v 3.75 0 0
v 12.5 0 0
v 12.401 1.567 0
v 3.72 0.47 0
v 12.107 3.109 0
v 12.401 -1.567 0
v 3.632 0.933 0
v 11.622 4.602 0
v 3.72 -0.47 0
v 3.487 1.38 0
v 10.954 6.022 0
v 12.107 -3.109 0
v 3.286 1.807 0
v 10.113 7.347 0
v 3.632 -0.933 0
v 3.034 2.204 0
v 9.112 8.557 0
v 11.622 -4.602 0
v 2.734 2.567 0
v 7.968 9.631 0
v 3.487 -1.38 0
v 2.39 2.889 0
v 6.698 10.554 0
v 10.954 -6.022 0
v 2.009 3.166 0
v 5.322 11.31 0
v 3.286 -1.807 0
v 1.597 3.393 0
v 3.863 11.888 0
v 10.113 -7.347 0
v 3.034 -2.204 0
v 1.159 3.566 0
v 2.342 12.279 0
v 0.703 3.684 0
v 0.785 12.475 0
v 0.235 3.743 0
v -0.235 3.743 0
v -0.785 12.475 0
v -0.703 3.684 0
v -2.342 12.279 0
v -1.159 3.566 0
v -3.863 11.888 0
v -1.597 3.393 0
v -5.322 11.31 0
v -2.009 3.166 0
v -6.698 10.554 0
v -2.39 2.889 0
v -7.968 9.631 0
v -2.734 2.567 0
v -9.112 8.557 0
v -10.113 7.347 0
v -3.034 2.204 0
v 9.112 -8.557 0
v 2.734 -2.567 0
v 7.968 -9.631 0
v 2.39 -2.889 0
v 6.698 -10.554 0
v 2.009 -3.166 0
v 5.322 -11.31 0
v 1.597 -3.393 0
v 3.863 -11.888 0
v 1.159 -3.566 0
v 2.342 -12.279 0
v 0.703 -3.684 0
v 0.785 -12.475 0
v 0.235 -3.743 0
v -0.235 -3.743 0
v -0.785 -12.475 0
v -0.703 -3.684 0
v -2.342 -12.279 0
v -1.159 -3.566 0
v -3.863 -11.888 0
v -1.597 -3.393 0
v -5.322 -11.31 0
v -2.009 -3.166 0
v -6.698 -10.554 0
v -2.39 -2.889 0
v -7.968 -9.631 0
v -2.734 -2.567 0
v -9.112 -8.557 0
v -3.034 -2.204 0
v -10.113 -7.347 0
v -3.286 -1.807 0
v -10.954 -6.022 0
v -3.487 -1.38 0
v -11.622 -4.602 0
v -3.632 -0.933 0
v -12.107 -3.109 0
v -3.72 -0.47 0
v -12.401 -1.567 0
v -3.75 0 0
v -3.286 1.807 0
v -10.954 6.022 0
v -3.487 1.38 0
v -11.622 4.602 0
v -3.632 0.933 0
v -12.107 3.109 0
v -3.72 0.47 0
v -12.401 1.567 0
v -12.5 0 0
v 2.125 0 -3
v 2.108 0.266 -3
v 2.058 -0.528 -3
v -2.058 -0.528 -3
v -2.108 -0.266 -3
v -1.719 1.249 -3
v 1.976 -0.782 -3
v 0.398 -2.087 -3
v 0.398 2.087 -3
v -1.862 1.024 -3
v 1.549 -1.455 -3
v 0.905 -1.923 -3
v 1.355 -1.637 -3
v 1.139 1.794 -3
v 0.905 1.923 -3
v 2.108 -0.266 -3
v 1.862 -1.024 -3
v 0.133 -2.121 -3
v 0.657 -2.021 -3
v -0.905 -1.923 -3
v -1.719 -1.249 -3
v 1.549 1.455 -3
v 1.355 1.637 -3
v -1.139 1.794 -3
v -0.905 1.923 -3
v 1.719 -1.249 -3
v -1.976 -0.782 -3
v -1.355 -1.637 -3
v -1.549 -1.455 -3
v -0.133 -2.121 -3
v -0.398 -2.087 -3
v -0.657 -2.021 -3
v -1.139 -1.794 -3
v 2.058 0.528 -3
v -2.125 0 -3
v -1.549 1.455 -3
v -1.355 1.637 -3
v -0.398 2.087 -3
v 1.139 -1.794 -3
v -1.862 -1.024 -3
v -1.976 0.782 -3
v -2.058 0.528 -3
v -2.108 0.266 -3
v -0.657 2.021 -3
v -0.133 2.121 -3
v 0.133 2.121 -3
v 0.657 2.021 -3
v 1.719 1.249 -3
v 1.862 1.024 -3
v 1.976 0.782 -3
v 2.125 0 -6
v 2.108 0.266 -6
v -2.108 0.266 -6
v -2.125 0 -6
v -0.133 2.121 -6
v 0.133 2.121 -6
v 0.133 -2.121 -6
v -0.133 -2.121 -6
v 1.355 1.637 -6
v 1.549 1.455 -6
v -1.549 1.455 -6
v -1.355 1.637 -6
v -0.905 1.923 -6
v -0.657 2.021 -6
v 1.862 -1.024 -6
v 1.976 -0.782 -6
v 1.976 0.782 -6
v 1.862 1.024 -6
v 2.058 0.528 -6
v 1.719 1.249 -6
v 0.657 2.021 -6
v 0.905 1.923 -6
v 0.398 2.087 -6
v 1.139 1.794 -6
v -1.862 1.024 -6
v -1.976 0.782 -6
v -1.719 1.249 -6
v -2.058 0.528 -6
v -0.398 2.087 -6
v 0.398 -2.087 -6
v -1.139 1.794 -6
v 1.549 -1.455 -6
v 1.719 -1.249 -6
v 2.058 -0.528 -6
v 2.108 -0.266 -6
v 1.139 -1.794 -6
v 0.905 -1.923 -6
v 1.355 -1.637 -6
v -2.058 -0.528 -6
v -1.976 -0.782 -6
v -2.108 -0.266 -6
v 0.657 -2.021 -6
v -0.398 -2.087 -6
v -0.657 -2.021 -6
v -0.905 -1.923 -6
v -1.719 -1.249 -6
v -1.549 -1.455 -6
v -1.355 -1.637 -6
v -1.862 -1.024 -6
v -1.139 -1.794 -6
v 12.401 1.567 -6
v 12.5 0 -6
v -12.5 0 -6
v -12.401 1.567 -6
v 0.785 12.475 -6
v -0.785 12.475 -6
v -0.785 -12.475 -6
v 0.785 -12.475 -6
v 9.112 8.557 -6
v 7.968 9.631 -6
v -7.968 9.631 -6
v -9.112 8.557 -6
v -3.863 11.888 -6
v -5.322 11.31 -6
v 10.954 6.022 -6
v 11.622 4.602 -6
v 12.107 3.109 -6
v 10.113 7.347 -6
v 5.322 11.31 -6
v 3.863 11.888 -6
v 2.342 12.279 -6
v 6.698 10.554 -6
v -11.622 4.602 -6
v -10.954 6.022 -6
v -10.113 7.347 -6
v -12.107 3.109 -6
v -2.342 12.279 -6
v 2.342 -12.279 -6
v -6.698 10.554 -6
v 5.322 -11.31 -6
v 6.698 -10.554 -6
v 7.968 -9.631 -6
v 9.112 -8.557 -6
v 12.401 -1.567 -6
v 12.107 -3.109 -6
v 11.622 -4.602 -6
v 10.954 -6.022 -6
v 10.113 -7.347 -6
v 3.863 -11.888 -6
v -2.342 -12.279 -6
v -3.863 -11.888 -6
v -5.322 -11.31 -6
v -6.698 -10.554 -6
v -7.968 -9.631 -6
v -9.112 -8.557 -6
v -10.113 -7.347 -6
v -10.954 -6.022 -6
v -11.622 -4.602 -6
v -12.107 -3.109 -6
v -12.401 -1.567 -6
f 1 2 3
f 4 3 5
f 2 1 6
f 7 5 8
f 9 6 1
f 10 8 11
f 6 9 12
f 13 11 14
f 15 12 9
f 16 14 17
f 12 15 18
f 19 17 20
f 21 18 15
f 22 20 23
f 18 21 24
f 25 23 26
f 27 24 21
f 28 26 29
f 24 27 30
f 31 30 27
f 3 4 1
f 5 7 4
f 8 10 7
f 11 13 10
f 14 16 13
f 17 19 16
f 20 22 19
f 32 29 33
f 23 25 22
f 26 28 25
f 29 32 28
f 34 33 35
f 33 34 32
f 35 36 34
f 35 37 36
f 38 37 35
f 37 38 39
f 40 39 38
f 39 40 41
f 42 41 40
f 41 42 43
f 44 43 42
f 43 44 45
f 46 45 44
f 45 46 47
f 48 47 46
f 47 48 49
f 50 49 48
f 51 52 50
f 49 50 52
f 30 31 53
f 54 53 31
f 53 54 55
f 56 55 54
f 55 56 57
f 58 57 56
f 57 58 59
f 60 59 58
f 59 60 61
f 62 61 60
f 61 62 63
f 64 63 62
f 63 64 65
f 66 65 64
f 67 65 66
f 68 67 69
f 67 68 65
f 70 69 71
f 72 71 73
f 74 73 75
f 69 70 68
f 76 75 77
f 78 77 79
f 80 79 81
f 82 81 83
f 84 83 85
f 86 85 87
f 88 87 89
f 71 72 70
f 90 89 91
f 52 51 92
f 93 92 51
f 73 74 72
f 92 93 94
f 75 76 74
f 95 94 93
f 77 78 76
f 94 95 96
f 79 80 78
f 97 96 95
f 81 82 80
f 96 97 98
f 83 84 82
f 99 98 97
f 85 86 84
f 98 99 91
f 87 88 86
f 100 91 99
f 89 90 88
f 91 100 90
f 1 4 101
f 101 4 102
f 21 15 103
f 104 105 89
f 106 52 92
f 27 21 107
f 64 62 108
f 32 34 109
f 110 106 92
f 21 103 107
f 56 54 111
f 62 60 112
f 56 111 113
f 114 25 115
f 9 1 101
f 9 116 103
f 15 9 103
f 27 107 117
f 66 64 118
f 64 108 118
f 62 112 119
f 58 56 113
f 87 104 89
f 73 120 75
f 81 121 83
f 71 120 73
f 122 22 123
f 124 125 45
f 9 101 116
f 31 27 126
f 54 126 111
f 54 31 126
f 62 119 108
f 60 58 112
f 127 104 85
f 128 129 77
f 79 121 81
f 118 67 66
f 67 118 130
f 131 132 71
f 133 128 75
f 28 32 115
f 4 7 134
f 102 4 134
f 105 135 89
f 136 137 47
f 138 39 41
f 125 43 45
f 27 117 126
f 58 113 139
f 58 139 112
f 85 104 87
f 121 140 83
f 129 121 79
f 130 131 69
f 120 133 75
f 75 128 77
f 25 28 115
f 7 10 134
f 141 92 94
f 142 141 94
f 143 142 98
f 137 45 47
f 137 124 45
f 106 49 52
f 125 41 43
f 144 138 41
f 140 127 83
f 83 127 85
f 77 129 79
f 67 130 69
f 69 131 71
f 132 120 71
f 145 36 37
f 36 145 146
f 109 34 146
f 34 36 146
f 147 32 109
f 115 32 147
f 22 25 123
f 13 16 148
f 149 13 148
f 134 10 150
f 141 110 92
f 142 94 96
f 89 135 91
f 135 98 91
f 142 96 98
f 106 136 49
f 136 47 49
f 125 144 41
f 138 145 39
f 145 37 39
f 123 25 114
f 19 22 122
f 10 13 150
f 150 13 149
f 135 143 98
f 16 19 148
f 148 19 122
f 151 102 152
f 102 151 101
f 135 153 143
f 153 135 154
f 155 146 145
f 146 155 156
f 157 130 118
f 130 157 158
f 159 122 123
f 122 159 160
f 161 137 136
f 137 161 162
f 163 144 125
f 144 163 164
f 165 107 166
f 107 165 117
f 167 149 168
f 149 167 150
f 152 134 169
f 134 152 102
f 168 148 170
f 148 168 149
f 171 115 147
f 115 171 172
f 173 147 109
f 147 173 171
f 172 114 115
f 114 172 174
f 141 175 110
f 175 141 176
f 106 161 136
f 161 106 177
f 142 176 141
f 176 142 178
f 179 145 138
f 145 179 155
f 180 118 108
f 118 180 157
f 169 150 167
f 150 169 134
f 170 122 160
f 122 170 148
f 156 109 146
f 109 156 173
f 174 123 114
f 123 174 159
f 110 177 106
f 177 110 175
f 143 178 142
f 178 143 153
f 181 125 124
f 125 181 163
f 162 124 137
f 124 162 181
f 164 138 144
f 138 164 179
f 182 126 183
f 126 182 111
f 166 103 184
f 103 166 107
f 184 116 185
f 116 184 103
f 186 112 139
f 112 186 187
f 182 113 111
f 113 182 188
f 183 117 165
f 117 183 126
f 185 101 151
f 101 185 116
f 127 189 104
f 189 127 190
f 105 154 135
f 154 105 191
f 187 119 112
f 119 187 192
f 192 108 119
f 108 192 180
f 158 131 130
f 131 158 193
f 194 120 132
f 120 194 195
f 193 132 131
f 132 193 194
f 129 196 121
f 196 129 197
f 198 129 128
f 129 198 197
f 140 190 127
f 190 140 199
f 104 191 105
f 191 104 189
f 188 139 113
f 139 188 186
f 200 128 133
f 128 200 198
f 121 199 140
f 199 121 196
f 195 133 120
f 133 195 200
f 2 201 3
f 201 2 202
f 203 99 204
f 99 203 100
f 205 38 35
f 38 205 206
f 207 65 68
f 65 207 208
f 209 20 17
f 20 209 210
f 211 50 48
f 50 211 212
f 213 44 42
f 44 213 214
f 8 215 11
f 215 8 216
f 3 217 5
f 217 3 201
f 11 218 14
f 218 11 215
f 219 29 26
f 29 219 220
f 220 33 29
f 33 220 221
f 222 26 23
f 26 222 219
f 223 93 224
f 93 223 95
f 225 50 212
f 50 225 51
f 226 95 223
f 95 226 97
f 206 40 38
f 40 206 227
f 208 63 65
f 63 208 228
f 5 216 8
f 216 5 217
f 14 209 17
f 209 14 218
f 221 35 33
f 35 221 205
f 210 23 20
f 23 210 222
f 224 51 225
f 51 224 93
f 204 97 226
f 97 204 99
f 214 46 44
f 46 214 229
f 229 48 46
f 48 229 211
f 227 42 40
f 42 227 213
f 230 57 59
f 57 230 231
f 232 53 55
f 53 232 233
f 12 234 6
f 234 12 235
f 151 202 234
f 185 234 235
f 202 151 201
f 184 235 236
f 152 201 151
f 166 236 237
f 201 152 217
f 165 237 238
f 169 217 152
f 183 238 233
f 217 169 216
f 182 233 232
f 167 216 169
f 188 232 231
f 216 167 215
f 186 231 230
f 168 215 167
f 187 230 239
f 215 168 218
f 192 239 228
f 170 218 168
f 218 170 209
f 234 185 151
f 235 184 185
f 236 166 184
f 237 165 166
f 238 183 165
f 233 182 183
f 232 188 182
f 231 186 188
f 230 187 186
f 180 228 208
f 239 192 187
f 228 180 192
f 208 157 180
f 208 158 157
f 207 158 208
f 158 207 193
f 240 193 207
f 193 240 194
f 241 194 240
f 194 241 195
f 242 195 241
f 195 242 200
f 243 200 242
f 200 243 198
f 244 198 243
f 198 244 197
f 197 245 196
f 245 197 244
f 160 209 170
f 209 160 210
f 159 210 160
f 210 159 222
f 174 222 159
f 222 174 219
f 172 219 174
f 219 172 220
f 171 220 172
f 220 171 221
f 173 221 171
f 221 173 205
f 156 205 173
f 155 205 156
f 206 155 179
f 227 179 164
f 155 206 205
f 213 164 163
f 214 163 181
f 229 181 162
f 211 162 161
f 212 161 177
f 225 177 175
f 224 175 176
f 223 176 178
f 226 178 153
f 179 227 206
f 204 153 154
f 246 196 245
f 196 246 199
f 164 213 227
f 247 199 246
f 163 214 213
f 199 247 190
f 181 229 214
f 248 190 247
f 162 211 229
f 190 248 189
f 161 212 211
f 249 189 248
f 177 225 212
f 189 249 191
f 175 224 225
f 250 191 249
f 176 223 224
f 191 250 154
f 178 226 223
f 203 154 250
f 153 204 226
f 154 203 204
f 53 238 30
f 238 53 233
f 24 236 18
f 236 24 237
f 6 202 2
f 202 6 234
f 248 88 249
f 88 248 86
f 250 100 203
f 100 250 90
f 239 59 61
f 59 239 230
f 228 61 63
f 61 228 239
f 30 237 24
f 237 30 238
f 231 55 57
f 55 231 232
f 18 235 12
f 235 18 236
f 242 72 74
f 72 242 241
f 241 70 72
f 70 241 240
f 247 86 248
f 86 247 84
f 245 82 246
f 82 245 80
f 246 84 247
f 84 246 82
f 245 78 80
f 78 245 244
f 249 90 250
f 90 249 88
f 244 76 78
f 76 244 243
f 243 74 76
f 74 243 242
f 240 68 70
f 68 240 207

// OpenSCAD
$fn = 50;


difference() {
	union() {
		translate(v = [0, 0, -6.0000000000]) {
			cylinder(h = 6, r = 12.5000000000);
		}
	}
	union() {
		translate(v = [0, 0, 0]) {
			rotate(a = [0, 0, 0]) {
				difference() {
					union() {
						translate(v = [0, 0, -9.0000000000]) {
							cylinder(h = 9, r = 2.0000000000);
						}
						translate(v = [0, 0, -3]) {
							cylinder(h = 3, r1 = 2.1250000000, r2 = 3.7500000000);
						}
						translate(v = [0, 0, -9.0000000000]) {
							cylinder(h = 9, r = 2.1250000000);
						}
						translate(v = [0, 0, -9.0000000000]) {
							cylinder(h = 9, r = 2.0000000000);
						}
					}
					union();
				}
			}
		}
	}
}
